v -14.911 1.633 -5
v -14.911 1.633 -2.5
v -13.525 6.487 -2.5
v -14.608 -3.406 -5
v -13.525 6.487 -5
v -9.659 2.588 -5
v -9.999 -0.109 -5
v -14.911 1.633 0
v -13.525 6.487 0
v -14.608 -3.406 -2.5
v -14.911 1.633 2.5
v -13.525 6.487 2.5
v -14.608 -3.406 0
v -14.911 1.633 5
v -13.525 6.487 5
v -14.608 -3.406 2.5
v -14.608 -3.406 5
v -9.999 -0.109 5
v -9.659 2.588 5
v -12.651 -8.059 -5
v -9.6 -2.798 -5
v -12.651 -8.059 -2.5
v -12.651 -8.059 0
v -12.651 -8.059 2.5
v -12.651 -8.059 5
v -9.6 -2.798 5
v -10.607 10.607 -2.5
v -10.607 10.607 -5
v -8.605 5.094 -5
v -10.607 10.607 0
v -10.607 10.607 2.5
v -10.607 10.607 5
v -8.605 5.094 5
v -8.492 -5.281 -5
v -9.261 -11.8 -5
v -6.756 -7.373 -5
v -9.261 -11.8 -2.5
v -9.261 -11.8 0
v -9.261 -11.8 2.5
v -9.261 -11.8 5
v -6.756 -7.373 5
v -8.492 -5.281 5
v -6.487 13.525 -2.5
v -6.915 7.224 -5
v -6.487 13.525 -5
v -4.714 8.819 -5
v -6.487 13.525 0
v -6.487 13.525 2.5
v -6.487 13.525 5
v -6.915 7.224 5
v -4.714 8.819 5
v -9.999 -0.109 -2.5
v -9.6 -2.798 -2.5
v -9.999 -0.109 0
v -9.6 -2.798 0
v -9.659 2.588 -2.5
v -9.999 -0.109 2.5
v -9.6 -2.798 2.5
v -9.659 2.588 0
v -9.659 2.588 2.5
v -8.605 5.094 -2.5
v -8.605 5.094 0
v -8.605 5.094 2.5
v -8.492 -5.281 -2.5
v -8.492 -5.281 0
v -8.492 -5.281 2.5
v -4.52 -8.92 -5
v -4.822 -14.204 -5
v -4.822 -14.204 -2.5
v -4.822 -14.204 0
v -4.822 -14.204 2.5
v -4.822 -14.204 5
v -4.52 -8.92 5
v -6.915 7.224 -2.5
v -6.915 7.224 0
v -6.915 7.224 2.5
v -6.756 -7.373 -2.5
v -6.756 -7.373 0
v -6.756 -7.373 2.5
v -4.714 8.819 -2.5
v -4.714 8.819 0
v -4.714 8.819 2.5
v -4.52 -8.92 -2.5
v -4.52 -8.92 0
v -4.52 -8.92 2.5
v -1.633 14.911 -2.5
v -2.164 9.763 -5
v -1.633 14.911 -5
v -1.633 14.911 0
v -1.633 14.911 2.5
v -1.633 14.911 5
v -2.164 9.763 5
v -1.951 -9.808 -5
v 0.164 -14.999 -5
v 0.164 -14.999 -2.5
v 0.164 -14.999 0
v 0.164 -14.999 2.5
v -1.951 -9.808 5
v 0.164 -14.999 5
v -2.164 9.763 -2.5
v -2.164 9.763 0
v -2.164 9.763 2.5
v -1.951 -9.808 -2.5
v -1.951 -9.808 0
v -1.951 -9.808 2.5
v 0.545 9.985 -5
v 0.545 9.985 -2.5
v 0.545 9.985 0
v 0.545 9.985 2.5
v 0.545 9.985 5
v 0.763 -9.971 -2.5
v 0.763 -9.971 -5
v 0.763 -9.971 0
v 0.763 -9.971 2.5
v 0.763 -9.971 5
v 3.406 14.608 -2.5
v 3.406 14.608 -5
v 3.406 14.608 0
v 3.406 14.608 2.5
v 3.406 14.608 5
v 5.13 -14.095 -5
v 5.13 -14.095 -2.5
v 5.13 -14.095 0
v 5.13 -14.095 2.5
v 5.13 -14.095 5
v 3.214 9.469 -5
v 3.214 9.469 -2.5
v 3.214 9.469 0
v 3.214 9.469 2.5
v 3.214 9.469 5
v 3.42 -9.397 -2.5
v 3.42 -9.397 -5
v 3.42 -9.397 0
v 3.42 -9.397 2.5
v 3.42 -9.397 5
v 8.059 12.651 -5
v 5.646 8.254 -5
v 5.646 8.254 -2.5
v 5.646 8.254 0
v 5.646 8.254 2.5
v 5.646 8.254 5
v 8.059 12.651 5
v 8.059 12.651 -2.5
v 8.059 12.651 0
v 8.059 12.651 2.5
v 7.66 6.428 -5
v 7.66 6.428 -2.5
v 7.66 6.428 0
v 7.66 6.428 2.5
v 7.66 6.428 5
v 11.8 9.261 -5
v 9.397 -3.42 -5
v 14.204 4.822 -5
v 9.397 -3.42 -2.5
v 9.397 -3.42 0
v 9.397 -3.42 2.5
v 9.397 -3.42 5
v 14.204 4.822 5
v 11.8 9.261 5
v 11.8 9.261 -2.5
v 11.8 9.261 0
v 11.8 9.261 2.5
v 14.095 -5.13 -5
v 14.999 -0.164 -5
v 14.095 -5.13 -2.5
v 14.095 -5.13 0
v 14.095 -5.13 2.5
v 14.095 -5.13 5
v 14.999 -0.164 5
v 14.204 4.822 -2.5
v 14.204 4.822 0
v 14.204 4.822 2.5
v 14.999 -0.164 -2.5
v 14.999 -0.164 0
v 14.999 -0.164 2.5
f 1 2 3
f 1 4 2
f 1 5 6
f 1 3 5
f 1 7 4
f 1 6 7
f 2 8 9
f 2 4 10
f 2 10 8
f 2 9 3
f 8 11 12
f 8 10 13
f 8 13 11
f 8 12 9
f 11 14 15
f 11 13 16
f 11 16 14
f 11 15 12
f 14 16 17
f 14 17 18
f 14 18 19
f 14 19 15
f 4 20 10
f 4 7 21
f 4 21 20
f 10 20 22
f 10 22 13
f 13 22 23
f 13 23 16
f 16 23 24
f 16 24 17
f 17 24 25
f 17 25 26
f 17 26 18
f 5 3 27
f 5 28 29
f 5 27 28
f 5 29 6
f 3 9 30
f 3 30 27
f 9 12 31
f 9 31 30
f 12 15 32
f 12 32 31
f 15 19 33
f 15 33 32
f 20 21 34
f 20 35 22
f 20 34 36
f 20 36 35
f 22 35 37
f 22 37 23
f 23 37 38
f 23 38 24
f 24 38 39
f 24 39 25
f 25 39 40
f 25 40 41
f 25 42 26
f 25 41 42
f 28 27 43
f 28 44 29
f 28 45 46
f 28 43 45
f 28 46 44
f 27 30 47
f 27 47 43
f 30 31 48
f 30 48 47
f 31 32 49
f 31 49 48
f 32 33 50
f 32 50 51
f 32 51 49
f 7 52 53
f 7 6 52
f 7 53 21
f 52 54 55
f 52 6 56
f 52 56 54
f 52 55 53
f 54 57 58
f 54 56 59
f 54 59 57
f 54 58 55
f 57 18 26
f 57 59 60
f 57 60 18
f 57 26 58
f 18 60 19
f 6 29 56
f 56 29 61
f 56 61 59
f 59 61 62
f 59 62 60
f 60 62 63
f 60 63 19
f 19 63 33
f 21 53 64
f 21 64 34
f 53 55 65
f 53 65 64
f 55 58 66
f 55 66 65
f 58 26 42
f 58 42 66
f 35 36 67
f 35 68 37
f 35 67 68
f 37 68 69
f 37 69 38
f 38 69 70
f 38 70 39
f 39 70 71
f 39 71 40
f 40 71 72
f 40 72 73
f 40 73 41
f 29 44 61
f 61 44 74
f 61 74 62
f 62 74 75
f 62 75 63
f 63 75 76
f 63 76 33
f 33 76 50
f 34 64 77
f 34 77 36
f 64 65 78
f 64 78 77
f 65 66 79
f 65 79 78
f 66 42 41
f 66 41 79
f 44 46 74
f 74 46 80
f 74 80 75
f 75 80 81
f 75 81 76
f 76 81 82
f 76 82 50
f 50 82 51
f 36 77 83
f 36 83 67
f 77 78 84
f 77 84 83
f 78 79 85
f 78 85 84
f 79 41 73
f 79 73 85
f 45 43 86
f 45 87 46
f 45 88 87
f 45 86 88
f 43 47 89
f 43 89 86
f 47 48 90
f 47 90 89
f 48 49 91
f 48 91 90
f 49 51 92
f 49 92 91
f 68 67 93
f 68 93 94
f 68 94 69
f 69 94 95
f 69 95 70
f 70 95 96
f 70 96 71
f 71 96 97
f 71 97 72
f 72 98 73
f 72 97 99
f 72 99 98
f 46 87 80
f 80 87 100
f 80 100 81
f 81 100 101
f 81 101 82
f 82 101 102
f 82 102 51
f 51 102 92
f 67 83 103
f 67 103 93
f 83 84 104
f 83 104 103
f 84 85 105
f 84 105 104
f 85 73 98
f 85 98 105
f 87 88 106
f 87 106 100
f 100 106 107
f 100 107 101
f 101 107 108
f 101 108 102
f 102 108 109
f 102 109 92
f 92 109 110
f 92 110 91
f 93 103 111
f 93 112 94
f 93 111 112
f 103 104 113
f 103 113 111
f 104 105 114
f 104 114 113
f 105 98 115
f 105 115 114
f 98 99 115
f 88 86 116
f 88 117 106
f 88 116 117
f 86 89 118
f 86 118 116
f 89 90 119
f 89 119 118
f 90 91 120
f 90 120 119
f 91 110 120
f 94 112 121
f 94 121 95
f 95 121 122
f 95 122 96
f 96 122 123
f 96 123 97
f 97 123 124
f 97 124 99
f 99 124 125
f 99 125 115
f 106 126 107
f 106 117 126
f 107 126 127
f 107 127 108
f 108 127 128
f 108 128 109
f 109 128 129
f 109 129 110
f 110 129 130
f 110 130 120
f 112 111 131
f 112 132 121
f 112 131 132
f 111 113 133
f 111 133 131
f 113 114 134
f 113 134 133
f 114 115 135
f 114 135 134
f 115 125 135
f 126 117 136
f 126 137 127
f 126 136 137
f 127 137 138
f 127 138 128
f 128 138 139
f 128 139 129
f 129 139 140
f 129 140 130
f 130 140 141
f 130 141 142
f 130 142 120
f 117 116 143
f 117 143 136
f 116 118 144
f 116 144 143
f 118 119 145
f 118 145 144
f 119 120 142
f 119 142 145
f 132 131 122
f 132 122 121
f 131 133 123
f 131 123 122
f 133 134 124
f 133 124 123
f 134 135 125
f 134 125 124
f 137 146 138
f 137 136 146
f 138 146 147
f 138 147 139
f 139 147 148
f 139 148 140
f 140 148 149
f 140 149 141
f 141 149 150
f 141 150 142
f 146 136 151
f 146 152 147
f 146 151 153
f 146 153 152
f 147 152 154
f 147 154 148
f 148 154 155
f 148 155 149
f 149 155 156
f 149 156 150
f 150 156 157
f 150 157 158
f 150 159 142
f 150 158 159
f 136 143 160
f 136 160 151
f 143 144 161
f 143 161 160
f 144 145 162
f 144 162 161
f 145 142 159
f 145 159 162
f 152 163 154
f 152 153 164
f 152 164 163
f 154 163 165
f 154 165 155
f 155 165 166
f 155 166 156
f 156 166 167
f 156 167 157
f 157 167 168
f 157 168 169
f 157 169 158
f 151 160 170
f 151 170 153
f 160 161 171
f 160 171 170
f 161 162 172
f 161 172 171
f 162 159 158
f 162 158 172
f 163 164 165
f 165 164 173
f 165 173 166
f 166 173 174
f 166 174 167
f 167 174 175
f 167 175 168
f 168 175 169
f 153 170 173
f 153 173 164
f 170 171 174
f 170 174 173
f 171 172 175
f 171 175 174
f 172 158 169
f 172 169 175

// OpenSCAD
// Start: lazy_union
default_5_default_5();
// End: lazy_union

// Modules.

// 'PartMaterial undef-default - default 5.0'
module default_5_default_5() {
  // 'None : _combine_solids_and_holes'
  union() {
    // 'default : _combine_solids_and_holes'
    union() {
      // 'outer'
      %multmatrix(m=[[1.0, 0.0, 0.0, 0.0], [-0.0, -1.0, -0.0, -0.0], [-0.0, -0.0, -1.0, 5.0], [0.0, 0.0, 0.0, 1.0]]) {
        // 'outer'
        color(c=[0.0, 1.0, 0.35, 0.4]) {
          // 'outer : _combine_solids_and_holes'
          union() {
            // 'outer'
            cylinder(h=10.0, r1=15.0, r2=15.0, center=false, $fn=16);
          }
        }
      }
      // 'inner'
      %multmatrix(m=[[1.0, 0.0, 0.0, 0.0], [-0.0, -1.0, -0.0, -0.0], [-0.0, -0.0, -1.0, 5.005], [0.0, 0.0, 0.0, 1.0]]) {
        // 'inner'
        color(c=[1.0, 0.0, 0.0, 0.4]) {
          // 'inner : _combine_solids_and_holes'
          union() {
            // 'inner'
            cylinder(h=10.01, r1=10.0, r2=10.0, center=false, $fn=16);
          }
        }
      }
      // 'sleeve'
      multmatrix(m=[[0.9396926207859083, 0.34202014332566893, 0.0, 0.0], [-0.34202014332566893, 0.9396926207859083, 0.0, 1.7763568394002505e-15], [0.0, 0.0, 1.0, -5.0], [0.0, 0.0, 0.0, 1.0]]) {
        // 'sleeve : _combine_solids_and_holes'
        union() {
          // 'sleeve'
          linear_extrude(height=10.0, twist=0.0, slices=4, scale=[1.0, 1.0], $fn=16) {
            polygon(points=[[15.0, 0.0], [10.0, 0.0], [5.000000000000001, 8.660254037844386], [2.482672393737165, 9.686915803565931], [-0.21814885034561032, 9.997620270799091], [-2.9028467725446214, 9.56940335732209], [-5.3729960834682355, 8.433914458128859], [-7.446028722923259, 6.675077247298477], [-8.968727415326882, 4.4228869021900135], [-9.82854991665301, 1.8438021954266395], [-9.961946980917455, -0.8715574274765794], [-9.35905926757326, -3.5225004792123276], [-8.064446042674827, -5.913096483635821], [-6.173791815707057, -7.866657143686164], [-3.8268343236509033, -9.238795325112864], [-1.1970365530496279, -9.92809667009055], [1.5212338618991592, -9.88361510467761], [4.127070298043935, -9.108638249211763], [6.427876096865386, -7.660444431189787], [9.641814145298081, -11.49066664678468], [5.283750718818494, -14.03858890135989], [0.32722327551840896, -14.996430406198641], [-4.666367111566376, -14.255701244768417], [-9.13142143513082, -11.900300104368526], [-12.562205324269623, -8.197011491445648], [-14.570131047198927, -3.56528838489259], [-14.927770900082956, 1.4702571049434139], [-13.594616805549752, 6.339273926110494], [-10.721668460010697, 10.490272896050508], [-6.634330353285023, 13.453091122990324], [-1.7955548295744437, 14.892145005135825], [3.2465942090715485, 14.644440106799], [7.9210177597555225, 12.738032722898682], [11.698267246393227, 9.388852082760884], [14.150512511847378, 4.976243126300281]]);
          }
        }
      }
    }
  }
} // end module default_5_default_5
